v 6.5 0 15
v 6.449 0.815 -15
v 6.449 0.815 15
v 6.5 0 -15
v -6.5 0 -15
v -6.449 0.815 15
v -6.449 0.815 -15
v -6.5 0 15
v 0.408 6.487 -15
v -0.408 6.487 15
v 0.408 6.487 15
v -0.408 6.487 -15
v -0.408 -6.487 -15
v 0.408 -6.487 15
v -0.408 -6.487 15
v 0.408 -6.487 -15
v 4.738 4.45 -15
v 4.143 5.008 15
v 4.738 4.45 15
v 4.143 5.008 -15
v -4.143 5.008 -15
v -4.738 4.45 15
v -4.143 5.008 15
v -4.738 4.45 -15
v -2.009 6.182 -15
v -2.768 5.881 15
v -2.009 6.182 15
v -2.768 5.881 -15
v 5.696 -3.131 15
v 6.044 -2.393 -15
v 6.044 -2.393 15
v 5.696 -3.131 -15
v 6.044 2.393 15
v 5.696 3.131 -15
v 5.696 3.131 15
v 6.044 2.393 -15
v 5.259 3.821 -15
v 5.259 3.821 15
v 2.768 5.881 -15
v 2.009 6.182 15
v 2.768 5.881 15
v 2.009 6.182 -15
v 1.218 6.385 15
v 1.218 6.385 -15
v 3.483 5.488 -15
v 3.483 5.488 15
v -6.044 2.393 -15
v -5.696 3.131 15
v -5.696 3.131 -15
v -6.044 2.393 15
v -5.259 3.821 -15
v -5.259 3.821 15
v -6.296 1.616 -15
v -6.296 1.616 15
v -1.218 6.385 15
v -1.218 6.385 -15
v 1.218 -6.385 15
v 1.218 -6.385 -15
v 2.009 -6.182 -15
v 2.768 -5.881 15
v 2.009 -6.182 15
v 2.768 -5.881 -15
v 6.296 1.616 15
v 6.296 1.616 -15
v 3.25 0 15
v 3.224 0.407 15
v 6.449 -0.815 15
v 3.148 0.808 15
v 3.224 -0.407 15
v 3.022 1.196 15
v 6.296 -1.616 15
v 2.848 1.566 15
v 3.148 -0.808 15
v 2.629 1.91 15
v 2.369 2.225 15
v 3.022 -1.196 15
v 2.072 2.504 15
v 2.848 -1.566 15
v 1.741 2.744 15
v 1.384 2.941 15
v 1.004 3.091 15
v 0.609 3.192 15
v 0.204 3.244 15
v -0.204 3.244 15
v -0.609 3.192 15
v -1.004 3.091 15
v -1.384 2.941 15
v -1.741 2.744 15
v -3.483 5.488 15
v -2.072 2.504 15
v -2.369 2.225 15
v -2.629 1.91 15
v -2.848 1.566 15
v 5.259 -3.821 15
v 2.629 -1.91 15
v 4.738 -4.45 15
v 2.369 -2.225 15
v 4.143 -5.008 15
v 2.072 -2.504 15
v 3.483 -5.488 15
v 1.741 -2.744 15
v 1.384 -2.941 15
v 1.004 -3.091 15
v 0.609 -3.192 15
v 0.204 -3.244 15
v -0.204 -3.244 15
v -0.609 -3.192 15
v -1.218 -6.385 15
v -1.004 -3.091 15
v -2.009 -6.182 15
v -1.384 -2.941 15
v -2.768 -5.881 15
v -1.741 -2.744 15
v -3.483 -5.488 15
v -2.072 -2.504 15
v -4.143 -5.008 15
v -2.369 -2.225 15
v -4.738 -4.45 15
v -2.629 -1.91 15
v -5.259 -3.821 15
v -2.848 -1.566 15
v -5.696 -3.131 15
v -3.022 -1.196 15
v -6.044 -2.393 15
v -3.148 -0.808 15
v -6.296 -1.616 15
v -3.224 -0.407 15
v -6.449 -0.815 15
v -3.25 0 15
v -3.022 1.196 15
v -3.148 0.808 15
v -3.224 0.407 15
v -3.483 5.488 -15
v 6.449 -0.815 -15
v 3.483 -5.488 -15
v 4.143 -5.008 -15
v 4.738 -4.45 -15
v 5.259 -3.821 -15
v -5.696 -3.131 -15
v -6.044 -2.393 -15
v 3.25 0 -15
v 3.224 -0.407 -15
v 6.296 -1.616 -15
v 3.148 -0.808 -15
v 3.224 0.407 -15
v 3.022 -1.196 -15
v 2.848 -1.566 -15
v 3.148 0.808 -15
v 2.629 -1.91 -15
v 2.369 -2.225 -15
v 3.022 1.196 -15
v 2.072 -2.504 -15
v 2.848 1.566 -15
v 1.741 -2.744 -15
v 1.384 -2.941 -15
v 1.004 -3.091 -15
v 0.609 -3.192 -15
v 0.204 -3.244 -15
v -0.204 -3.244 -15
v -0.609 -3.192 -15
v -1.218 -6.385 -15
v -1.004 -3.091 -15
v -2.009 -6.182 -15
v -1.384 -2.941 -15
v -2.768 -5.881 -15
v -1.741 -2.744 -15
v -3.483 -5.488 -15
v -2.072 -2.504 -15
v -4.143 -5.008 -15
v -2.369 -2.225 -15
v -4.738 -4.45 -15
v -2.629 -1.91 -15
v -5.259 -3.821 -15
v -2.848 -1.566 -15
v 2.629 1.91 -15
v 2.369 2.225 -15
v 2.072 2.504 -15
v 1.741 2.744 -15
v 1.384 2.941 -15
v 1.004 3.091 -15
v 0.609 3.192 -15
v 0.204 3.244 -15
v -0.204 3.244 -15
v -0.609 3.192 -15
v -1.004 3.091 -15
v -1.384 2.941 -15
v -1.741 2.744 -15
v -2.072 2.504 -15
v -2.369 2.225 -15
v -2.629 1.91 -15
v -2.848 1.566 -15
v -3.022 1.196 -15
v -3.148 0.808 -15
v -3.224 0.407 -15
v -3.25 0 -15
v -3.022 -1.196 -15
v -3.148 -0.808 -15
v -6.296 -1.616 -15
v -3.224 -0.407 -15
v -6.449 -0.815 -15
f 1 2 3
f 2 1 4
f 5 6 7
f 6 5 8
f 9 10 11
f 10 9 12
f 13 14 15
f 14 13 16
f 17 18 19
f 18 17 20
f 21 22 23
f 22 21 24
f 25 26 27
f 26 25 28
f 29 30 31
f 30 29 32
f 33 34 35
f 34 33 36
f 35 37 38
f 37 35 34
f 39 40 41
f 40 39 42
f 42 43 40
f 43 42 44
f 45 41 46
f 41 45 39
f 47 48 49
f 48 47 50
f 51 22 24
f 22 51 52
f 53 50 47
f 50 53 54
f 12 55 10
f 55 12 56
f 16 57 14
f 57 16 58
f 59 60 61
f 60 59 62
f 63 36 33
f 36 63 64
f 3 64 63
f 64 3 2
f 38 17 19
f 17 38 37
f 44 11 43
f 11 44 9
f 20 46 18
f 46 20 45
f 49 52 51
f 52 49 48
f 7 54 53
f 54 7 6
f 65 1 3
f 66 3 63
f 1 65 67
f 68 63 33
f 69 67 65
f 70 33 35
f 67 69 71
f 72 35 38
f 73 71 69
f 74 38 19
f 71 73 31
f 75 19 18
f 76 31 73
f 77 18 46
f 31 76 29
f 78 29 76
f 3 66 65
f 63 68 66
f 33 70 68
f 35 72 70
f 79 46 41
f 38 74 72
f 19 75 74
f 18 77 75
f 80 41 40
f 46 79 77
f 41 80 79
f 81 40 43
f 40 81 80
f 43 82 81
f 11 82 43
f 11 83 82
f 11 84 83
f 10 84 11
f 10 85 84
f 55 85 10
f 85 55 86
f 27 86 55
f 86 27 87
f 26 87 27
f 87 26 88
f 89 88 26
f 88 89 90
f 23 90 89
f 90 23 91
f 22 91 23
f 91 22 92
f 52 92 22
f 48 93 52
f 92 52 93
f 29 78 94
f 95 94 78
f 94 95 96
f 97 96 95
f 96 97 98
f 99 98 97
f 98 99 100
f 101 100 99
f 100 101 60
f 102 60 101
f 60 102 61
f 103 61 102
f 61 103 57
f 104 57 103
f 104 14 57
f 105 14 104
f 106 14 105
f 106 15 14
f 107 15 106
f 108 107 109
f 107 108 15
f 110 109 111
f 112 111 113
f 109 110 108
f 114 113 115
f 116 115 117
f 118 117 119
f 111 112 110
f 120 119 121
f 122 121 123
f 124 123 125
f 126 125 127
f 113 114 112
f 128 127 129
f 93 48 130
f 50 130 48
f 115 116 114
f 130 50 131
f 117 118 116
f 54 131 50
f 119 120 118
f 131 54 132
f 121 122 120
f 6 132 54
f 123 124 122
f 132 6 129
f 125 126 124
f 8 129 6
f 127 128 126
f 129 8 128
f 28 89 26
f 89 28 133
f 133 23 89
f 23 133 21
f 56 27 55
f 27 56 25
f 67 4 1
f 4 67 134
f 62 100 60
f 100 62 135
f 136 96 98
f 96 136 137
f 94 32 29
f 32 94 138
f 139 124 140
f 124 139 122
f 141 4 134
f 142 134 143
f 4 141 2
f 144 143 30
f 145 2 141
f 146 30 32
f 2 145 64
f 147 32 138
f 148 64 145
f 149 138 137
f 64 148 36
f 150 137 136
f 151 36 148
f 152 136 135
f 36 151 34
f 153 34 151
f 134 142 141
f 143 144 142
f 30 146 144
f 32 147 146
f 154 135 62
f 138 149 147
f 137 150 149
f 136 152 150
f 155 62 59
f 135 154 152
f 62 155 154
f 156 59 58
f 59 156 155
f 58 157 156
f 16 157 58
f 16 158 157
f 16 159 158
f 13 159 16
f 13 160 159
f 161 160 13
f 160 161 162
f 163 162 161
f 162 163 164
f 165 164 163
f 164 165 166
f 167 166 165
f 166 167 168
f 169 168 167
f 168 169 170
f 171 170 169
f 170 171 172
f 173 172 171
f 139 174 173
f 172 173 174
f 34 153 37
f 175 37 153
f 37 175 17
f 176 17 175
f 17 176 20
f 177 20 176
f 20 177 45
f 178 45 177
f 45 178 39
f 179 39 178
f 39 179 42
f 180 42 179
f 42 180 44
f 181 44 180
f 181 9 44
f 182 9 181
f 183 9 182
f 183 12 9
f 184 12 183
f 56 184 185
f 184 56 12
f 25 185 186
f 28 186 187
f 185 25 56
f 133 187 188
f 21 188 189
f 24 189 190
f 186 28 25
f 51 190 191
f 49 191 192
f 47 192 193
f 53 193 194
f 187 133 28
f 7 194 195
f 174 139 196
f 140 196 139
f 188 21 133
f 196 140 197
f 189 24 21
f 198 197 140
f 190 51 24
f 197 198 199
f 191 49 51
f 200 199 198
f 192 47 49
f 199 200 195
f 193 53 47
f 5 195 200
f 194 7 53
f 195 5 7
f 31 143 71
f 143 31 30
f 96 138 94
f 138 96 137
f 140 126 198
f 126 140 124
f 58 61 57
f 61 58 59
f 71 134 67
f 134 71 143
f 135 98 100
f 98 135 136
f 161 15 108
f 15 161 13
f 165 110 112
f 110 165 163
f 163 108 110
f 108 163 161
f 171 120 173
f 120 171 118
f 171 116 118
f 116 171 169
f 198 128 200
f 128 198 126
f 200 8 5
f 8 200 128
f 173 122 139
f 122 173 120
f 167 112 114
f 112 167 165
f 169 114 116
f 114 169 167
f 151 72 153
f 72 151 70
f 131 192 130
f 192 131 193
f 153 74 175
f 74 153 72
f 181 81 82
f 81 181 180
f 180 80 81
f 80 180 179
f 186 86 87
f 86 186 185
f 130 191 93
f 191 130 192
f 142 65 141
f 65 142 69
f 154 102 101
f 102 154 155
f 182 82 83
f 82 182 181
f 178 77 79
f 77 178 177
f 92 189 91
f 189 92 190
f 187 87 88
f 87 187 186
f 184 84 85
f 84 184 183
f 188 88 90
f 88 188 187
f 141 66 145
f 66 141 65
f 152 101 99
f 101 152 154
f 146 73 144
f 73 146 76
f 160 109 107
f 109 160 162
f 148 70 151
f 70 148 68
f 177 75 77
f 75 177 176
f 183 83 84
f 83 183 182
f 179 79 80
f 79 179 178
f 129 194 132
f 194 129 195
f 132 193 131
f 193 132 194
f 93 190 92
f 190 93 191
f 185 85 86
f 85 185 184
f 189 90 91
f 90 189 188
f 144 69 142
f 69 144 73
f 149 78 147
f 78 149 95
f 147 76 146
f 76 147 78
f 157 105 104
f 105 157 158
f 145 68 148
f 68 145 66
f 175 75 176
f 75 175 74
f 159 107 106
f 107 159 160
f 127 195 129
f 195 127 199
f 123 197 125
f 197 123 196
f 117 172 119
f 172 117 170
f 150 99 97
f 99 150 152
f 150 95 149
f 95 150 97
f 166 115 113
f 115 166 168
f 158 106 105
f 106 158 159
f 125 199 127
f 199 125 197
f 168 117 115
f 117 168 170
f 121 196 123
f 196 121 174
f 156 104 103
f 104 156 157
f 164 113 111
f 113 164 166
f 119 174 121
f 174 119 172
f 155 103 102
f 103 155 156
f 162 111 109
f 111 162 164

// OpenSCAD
$fn = 50;


difference() {
	union() {
		translate(v = [0, 0, -15.0000000000]) {
			cylinder(h = 30, r = 6.5000000000);
		}
	}
	union() {
		translate(v = [0, 0, -100.0000000000]) {
			cylinder(h = 200, r = 3.2500000000);
		}
	}
}
